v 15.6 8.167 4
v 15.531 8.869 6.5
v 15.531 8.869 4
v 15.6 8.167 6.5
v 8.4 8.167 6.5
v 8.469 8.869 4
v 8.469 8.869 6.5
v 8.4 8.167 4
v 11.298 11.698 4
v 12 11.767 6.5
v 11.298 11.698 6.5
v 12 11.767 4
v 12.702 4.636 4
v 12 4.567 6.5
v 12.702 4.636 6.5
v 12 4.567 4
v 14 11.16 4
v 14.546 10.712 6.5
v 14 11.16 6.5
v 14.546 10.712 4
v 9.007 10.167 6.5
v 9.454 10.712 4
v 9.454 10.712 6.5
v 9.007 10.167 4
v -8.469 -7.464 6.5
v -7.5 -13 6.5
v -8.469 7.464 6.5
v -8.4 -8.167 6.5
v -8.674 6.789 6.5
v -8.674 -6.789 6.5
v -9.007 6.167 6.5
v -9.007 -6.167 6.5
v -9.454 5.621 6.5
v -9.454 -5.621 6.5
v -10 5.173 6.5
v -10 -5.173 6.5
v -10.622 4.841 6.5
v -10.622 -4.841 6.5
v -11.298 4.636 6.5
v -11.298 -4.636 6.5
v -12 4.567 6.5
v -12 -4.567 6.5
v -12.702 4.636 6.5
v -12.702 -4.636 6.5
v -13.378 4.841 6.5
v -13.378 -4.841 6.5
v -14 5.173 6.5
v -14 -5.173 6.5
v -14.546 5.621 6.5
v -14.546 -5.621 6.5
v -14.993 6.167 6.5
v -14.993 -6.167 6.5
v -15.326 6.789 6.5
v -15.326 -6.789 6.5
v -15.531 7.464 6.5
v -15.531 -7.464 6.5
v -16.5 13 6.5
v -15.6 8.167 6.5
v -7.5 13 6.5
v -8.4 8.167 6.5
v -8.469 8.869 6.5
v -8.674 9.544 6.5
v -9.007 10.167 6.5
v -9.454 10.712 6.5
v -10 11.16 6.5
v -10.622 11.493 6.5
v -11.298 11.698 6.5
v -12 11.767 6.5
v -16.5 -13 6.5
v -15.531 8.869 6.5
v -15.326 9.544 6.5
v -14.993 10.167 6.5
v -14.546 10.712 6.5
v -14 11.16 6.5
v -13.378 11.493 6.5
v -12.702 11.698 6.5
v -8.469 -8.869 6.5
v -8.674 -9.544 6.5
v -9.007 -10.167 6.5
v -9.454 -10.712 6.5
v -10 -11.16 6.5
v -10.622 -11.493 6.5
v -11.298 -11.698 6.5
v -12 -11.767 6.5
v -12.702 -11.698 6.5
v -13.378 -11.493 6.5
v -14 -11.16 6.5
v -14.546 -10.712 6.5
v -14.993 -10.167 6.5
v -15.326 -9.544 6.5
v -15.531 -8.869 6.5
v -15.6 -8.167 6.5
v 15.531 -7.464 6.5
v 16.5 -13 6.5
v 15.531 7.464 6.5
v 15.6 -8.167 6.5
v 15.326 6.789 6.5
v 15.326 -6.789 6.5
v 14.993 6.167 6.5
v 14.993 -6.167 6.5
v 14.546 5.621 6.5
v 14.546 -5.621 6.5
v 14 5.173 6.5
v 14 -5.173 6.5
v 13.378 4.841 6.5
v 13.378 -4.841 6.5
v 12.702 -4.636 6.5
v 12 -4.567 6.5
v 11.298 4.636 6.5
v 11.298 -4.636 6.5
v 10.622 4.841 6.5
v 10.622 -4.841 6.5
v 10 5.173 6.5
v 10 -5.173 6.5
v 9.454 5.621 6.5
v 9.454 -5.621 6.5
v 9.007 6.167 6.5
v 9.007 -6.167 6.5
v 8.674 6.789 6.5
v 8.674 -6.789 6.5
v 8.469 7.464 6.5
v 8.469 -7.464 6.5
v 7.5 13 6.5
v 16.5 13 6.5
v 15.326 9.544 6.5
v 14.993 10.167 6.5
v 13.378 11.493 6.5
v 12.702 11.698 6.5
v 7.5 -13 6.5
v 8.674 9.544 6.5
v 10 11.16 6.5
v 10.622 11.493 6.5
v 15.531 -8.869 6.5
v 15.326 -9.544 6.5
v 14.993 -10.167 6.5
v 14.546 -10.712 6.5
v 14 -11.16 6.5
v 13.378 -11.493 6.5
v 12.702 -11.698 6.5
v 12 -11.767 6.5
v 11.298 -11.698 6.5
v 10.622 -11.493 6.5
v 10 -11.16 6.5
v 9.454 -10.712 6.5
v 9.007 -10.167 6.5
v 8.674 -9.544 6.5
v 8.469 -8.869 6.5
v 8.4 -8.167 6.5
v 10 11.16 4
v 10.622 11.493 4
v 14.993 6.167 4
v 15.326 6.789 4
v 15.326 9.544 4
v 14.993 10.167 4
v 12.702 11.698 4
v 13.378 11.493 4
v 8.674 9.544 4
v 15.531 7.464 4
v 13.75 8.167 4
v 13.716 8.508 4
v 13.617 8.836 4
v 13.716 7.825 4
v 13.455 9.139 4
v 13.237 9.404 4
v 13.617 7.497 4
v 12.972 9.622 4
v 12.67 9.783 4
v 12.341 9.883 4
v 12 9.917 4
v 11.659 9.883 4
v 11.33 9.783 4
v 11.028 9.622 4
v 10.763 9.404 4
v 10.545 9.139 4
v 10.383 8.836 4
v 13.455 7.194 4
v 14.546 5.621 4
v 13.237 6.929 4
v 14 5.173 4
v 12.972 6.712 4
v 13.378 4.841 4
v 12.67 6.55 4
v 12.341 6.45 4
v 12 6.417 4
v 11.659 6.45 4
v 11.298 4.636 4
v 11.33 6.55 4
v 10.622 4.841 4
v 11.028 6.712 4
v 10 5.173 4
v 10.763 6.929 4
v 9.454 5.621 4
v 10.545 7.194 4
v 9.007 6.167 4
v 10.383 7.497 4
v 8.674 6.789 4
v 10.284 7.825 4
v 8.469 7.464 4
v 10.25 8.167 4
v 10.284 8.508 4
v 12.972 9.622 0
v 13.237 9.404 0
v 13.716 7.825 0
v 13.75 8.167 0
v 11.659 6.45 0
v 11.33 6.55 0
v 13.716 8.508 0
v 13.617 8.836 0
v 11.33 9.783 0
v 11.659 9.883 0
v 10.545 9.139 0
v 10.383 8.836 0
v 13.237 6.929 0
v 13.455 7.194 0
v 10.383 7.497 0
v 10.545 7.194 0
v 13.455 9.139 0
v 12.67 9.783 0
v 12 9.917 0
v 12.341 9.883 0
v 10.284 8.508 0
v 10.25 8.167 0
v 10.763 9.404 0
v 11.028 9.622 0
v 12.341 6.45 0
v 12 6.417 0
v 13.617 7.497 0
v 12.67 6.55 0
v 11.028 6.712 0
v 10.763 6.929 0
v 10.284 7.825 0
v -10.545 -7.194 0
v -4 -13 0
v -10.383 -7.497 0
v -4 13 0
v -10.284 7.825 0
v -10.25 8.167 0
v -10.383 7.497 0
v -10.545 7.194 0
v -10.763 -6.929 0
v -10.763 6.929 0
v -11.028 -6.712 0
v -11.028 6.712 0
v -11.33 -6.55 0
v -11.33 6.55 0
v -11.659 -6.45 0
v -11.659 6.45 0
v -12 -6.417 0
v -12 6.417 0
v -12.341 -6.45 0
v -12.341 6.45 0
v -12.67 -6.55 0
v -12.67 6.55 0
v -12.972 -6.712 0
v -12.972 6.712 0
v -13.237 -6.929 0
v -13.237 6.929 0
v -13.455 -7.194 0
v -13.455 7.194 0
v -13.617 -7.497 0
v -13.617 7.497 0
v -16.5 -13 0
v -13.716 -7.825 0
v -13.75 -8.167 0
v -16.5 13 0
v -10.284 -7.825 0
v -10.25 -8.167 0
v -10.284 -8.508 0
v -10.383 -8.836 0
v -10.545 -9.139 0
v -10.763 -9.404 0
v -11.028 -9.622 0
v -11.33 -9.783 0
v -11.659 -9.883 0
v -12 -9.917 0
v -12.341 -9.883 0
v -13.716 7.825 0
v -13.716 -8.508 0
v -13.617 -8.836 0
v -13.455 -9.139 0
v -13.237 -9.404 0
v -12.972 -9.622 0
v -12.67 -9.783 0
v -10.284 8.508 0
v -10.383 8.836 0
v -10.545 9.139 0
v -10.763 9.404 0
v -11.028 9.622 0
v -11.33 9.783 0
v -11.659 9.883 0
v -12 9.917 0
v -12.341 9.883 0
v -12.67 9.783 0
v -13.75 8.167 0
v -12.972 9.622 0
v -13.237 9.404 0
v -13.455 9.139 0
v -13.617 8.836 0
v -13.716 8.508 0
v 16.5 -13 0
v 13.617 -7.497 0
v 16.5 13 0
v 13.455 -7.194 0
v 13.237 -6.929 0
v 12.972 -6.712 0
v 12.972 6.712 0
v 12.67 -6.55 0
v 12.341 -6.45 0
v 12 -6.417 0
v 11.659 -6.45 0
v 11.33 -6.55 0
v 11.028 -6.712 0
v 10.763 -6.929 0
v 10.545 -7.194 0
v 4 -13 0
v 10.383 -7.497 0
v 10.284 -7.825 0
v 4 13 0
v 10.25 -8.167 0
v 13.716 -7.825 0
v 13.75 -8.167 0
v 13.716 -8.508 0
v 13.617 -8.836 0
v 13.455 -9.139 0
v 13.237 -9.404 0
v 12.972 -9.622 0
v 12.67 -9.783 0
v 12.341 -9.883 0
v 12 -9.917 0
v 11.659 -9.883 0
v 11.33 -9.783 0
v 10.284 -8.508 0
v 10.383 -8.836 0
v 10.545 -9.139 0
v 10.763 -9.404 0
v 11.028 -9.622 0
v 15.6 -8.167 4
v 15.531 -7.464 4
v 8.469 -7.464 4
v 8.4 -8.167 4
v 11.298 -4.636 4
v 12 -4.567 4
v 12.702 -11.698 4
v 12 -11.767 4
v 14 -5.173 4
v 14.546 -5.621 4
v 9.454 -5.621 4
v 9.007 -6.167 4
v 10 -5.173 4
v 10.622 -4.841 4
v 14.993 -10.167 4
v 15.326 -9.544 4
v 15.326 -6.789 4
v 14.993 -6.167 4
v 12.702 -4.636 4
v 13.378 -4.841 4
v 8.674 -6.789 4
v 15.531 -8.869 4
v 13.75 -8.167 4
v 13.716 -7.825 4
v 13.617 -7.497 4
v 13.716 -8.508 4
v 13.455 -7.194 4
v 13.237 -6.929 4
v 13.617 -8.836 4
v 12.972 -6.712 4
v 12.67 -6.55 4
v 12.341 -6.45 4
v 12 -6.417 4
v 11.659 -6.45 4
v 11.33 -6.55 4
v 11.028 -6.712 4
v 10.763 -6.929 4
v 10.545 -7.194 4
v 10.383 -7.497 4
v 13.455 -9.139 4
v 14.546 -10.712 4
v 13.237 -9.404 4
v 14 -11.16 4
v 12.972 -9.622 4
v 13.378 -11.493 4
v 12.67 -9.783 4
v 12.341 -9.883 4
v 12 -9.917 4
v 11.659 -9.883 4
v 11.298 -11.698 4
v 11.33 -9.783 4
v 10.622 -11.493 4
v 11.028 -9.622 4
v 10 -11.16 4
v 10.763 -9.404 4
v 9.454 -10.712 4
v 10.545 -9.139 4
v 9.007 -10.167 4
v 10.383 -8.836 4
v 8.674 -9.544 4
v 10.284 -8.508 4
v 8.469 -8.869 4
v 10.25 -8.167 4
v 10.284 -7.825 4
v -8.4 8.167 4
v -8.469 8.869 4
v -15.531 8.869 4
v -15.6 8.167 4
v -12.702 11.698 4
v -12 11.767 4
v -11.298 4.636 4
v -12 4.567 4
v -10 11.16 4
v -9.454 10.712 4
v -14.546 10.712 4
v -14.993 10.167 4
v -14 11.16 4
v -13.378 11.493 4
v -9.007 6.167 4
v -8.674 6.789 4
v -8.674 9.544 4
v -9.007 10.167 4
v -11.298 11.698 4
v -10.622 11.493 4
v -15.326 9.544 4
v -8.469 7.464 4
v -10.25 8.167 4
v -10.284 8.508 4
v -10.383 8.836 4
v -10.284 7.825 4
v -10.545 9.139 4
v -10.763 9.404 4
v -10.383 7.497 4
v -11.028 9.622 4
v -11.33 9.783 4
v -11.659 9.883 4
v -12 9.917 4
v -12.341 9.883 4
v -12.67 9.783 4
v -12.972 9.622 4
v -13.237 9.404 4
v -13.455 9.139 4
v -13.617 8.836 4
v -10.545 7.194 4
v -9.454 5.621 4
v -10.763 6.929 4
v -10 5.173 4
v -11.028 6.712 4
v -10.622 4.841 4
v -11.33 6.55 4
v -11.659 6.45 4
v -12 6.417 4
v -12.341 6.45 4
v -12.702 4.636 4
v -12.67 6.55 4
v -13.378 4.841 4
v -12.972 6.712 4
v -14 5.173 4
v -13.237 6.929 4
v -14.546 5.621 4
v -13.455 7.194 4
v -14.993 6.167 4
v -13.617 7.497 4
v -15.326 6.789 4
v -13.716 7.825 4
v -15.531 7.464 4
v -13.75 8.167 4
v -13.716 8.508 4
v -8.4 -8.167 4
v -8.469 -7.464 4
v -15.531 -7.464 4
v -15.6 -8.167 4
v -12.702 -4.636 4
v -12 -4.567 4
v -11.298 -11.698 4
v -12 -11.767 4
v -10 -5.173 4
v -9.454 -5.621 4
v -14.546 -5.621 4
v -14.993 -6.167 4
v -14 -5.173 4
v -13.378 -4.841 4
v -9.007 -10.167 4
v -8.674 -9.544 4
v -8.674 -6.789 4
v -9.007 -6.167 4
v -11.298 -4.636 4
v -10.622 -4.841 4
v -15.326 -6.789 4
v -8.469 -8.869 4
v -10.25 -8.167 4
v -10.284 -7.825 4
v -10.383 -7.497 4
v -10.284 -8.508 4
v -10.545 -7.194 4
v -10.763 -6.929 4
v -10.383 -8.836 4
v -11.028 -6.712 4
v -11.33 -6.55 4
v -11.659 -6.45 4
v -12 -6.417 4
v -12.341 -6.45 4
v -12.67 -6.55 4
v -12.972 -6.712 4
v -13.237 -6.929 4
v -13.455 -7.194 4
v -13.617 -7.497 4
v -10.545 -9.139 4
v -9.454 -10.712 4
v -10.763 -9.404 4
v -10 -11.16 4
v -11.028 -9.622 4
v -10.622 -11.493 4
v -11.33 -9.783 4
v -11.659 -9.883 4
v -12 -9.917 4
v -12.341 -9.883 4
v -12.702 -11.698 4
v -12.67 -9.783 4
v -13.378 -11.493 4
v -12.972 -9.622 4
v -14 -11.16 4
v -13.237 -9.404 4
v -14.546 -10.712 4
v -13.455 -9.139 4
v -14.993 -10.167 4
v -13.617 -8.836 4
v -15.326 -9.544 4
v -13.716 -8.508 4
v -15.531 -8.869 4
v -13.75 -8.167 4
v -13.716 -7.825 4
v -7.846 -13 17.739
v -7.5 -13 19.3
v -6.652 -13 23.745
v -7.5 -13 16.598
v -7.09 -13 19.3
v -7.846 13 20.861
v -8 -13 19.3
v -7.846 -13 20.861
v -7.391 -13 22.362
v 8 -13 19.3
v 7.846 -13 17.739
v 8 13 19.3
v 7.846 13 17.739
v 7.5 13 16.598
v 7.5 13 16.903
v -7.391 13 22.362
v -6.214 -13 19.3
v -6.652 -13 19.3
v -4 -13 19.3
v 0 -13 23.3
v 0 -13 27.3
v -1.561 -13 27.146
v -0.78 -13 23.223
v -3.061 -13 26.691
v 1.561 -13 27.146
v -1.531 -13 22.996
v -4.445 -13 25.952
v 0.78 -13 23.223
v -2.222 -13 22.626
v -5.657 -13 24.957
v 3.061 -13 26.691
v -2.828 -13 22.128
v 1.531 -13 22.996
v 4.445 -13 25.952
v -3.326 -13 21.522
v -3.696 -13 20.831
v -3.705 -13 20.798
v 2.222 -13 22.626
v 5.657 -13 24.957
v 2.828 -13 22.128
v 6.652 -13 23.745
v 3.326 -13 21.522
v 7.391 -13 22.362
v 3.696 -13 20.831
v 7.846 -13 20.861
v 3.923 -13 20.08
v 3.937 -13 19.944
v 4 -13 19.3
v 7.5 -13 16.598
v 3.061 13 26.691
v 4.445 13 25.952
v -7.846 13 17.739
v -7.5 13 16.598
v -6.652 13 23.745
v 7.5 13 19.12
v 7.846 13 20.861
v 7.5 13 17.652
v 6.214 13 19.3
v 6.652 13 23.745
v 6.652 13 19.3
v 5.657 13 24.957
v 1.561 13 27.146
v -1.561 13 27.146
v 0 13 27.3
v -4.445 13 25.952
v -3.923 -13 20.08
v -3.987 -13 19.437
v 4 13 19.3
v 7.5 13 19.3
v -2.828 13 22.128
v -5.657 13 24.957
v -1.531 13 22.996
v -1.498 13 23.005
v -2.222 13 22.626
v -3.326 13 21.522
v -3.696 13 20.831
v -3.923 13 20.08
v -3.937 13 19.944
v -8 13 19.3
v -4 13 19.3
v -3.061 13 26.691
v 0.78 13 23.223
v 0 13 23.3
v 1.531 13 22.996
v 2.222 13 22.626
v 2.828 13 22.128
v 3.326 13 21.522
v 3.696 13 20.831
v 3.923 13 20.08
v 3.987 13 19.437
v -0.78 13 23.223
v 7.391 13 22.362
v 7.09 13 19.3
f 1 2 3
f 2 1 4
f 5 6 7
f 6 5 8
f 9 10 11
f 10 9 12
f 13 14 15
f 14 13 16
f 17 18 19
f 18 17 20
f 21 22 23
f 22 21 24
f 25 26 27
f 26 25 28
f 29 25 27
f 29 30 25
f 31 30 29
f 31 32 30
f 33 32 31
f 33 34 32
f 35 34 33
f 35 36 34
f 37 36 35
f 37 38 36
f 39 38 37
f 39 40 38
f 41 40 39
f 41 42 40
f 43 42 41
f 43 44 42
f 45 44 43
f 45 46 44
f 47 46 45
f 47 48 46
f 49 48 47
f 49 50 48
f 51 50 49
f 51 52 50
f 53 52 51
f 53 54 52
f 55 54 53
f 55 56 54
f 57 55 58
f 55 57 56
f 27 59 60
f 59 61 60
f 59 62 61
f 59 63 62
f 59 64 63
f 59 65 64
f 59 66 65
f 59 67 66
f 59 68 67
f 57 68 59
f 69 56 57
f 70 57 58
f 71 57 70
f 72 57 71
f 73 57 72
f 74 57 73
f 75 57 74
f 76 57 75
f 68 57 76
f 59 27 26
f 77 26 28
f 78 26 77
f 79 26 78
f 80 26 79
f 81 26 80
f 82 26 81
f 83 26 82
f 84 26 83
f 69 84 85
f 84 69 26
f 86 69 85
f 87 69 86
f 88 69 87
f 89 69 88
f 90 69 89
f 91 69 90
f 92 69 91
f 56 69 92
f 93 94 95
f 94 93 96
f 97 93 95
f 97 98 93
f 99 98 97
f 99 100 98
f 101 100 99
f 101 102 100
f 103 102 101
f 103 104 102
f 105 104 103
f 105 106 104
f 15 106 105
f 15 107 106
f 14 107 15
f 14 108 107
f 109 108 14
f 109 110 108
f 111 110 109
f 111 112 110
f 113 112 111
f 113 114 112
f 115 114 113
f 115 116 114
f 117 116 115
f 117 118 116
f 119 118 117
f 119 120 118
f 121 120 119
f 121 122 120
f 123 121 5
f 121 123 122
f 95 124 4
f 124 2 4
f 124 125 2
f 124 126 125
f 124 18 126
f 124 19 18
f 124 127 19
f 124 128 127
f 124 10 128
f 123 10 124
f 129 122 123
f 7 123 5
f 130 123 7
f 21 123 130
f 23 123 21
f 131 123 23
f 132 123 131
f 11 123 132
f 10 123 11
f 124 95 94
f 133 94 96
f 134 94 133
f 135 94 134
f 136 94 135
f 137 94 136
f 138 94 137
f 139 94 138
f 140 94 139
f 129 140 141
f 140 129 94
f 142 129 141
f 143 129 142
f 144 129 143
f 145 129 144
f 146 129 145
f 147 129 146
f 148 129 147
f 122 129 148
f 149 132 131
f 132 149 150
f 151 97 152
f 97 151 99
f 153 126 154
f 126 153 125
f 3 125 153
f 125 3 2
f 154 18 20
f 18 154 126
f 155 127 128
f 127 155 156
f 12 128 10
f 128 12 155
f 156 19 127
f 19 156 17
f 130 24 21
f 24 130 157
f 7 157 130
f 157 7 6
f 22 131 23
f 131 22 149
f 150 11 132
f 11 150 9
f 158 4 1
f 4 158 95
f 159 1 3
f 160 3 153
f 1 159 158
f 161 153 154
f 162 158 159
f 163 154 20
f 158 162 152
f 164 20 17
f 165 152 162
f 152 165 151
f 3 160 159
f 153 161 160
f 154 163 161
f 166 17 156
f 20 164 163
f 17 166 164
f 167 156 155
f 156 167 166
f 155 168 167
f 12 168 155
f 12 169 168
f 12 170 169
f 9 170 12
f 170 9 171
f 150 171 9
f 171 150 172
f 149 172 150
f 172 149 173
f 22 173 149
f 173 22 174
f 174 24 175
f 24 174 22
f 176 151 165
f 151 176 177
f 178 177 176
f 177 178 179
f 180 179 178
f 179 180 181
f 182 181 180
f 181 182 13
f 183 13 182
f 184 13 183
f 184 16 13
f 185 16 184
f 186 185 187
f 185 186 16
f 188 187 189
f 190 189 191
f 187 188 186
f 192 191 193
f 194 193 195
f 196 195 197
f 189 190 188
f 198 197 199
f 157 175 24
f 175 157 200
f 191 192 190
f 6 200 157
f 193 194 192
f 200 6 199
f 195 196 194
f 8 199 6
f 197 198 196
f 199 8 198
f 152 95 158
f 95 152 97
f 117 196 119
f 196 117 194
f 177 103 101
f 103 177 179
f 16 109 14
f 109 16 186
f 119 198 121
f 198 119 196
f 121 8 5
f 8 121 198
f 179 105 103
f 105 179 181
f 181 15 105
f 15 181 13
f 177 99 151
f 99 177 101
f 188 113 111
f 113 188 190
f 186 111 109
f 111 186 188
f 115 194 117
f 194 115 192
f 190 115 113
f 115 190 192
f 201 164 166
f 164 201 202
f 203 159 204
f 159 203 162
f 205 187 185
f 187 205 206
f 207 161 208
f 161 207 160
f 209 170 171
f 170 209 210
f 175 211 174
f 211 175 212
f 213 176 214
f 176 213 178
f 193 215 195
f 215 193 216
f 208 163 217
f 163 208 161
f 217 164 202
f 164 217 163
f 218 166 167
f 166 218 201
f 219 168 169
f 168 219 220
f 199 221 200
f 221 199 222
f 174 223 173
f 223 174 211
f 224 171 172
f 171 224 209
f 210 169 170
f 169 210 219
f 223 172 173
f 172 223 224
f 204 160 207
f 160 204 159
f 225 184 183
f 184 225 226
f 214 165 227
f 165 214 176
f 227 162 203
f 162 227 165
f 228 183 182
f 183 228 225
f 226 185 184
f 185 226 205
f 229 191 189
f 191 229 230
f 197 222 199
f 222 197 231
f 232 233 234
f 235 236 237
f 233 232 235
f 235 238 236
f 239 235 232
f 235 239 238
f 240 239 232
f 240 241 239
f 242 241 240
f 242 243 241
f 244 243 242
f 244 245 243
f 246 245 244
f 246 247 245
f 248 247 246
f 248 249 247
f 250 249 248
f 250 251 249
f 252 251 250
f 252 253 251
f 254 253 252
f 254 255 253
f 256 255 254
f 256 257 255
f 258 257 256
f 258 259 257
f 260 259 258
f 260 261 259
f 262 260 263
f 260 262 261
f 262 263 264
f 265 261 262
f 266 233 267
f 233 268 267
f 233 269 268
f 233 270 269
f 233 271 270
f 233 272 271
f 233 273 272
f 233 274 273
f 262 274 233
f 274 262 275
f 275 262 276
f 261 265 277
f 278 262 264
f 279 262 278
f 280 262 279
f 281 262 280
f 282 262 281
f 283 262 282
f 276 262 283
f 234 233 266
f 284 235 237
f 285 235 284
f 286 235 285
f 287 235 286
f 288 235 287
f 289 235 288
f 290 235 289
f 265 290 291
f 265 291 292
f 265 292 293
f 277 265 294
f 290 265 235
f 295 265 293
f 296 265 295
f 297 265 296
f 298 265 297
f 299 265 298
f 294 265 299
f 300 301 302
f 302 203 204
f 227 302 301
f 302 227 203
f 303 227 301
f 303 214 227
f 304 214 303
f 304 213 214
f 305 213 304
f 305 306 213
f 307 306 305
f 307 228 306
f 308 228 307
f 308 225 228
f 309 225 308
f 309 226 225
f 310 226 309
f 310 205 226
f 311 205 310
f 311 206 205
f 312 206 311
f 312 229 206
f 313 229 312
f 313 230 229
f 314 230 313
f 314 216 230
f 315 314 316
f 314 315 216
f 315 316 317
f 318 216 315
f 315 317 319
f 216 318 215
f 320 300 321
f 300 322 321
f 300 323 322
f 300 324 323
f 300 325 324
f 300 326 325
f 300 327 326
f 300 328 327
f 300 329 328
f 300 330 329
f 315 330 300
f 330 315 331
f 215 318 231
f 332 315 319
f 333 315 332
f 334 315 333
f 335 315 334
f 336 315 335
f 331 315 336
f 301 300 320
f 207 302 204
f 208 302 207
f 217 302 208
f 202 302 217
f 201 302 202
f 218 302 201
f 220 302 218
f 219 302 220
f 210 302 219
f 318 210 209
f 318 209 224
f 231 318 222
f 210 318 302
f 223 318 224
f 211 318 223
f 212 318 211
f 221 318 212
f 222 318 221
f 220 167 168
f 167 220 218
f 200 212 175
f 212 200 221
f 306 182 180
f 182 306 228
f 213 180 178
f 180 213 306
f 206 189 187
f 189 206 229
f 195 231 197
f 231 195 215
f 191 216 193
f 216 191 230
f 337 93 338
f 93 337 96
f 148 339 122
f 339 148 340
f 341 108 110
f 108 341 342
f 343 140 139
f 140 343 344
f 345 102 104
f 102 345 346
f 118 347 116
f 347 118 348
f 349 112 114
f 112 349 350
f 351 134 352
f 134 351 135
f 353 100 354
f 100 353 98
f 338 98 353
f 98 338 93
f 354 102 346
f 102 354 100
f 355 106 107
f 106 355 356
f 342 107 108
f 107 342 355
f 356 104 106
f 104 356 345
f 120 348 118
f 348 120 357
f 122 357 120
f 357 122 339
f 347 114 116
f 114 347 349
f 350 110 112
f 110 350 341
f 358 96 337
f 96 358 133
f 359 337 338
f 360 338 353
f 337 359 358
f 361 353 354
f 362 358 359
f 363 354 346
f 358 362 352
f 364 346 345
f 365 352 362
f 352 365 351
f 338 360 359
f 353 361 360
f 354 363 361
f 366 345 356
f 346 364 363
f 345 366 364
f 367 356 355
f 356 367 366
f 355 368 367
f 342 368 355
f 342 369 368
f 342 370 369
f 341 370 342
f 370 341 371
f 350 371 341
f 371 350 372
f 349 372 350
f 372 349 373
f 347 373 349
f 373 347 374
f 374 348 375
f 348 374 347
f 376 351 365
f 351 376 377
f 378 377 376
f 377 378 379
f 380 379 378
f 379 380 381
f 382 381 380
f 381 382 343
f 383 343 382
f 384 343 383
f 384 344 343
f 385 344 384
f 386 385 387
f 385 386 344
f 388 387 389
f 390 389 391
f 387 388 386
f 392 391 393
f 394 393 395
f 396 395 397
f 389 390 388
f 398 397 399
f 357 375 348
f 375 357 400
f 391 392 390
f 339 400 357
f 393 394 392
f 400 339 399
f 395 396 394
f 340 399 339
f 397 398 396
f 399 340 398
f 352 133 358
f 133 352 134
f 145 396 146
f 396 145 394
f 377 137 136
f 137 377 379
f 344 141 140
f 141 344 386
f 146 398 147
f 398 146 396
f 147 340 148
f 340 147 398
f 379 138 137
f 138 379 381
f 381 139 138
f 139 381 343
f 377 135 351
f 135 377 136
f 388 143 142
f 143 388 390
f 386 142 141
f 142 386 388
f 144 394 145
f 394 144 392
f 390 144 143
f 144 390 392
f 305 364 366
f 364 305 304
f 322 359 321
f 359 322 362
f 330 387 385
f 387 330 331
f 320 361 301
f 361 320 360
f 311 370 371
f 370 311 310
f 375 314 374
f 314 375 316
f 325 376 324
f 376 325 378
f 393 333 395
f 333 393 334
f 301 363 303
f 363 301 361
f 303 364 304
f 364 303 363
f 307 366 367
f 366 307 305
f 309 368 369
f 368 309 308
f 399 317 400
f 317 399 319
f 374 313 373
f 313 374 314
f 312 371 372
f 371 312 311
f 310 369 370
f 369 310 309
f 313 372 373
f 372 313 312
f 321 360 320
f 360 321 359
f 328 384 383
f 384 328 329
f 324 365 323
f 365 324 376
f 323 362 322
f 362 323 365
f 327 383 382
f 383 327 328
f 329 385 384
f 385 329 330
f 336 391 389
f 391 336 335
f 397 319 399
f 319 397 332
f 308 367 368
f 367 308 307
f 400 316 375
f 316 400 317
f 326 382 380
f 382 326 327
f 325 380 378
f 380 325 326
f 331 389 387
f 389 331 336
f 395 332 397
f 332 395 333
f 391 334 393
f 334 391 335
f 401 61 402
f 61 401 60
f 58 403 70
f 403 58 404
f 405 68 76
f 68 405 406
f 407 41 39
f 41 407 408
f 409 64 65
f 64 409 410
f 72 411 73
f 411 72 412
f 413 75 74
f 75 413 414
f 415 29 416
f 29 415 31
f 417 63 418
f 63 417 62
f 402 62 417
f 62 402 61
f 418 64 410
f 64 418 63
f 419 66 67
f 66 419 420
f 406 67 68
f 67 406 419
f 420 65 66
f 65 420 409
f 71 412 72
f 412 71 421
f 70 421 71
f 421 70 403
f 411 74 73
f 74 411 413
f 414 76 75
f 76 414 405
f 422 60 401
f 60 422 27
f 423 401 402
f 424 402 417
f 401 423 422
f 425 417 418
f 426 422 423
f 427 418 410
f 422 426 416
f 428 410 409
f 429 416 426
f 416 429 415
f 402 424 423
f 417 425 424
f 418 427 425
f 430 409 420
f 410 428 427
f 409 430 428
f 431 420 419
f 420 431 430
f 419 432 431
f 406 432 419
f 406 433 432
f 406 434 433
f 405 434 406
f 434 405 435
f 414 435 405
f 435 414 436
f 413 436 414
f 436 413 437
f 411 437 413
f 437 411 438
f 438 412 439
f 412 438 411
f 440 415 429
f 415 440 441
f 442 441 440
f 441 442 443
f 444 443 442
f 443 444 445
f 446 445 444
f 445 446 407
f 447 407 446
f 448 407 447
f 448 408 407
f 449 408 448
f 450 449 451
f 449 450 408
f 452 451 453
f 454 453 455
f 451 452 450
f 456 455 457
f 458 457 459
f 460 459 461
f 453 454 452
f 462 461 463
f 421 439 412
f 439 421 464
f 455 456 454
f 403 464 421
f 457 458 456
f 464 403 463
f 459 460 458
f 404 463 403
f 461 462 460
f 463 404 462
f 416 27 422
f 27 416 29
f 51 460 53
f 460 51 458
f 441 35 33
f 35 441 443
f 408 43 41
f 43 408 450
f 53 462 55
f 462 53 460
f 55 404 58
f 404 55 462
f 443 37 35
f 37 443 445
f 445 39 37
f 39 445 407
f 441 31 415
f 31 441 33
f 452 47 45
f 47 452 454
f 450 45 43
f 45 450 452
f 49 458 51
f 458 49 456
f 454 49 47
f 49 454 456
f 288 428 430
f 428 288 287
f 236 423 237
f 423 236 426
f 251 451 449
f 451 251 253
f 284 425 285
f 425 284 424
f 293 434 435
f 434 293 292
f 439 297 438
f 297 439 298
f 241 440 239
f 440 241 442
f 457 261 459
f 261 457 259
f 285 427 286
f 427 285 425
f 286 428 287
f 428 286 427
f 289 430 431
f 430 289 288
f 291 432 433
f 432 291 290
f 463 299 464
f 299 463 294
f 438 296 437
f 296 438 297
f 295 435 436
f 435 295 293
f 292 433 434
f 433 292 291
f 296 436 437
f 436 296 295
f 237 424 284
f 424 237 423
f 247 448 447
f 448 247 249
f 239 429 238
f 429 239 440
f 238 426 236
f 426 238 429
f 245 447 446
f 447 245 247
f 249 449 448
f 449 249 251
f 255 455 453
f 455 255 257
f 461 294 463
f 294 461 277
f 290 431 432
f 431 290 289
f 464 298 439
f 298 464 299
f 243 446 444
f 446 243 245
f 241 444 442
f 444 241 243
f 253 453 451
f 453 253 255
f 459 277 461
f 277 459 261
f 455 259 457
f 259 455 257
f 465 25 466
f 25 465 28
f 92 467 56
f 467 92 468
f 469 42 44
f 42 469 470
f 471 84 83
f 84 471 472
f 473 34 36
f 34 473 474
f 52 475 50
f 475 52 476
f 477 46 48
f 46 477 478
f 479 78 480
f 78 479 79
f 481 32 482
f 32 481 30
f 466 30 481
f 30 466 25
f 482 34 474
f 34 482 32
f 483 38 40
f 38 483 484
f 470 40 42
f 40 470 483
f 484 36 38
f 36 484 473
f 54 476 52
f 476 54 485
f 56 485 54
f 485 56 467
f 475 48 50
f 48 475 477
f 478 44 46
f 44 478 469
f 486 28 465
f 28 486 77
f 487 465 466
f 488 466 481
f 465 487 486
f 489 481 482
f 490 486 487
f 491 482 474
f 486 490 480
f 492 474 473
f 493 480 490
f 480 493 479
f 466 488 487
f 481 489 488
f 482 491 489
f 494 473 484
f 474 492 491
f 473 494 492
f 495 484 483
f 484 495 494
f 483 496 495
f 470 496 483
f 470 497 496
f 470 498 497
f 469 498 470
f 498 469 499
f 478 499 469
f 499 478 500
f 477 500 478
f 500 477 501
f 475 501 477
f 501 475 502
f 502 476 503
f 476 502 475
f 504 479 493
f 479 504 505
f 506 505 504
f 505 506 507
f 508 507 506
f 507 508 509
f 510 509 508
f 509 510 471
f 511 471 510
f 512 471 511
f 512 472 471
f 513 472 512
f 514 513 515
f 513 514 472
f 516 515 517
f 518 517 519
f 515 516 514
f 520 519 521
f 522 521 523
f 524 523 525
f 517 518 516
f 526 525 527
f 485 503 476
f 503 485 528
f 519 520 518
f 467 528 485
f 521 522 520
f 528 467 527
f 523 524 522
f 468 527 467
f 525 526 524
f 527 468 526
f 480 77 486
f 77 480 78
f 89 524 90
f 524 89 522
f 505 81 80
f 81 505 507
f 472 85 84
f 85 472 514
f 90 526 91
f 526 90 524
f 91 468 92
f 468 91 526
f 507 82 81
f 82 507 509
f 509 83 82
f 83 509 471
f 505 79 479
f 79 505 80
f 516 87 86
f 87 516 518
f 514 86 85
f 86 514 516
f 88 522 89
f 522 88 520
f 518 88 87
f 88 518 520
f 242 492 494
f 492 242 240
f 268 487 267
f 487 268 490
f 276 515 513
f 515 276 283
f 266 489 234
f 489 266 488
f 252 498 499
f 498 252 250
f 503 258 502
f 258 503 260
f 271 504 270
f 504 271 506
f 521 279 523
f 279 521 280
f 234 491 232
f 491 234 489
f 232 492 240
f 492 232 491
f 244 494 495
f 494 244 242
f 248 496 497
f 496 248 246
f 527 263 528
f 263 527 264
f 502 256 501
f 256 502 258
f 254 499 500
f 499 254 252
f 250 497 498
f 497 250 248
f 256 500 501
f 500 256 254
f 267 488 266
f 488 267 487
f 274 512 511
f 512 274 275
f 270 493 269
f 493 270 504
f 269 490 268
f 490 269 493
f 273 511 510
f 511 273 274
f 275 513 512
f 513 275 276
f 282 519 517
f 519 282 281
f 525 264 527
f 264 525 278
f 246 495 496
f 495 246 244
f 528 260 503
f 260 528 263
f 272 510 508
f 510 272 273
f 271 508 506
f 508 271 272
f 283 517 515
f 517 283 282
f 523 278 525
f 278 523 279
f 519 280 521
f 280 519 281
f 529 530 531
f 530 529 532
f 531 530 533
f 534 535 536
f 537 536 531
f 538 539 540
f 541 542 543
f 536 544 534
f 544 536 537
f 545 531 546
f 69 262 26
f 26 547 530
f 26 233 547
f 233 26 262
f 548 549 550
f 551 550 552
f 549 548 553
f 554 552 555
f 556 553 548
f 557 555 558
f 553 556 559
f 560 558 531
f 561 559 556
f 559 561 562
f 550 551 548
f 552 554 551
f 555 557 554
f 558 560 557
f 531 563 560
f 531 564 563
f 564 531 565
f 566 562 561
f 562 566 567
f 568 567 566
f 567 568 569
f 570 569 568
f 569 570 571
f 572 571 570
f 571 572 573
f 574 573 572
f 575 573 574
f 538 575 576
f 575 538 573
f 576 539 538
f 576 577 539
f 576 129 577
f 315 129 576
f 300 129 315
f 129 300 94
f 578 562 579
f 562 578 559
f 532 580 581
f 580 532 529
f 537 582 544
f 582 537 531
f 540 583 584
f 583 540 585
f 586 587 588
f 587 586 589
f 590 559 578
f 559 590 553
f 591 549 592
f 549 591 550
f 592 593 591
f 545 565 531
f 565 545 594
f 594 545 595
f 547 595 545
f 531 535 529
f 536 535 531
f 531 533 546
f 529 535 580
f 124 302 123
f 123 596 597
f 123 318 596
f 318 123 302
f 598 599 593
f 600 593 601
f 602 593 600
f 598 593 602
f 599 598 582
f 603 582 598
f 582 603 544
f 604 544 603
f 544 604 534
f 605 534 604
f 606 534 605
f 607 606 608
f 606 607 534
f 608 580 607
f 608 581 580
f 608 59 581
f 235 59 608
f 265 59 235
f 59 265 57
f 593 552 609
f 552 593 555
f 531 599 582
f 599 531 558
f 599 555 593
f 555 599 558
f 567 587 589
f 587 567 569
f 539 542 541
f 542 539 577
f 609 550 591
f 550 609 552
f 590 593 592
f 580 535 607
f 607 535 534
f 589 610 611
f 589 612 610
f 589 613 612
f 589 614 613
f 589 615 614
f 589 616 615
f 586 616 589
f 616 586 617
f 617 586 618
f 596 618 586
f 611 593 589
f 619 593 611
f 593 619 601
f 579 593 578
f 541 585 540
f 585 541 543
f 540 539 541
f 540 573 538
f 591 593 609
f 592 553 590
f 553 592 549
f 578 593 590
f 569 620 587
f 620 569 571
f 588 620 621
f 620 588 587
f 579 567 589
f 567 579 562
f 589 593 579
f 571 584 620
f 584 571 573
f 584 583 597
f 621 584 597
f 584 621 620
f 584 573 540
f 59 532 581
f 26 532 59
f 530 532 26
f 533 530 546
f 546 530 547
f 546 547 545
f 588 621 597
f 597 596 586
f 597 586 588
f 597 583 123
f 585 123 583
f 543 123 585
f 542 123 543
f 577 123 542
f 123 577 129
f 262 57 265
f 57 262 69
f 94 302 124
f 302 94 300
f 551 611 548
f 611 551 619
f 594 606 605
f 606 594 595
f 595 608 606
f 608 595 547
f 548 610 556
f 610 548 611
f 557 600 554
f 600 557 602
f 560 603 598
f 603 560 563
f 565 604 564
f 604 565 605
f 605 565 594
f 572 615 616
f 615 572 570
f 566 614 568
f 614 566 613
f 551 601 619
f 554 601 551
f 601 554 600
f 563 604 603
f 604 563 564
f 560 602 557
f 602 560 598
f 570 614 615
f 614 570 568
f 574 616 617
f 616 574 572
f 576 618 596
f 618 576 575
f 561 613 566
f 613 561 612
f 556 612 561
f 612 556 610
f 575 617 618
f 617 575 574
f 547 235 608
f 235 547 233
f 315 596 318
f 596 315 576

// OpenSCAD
//#translate([-16, -15 ,0]) import("/home/bhack/STL/Lock_Down_Clip.stl", convexity=3);

$fn = 32; // detail

$width = 26; // how long / wide the object is
$basewidth = 33; // how big the feet are

$height = 23.3;  // Woot! This is awesome.


module screwhole () {
    union() {
        //cylinder(r2 = 3.5, r1 = 1, h=2, center=true);
        translate([0, 0, 1.75]) #cylinder(d=7.2, h=2.5, center=true); // used to be 2, for a large top gap
        translate([0, 0, -3.5]) cylinder(d=3.5, h=7, center=false); // inner screw hole
    }
}


difference() {
    // Main Body
    union() {
        translate([0, 0, $height-4]) rotate([0, 90, 90]) cylinder(d=16, h=$width, center=true);
        translate([-7.5, -$width/2, 0]) cube([15, $width, $height-4], center=false) ;

        // Bottom Plate
        translate([-$basewidth/2, -$width/2, 0]) cube([$basewidth, $width, 6.5], center=false) ;
    }

    // Main body cutout 
    union() {
        translate([0, 0, $height-4]) rotate([0, 90, 90]) cylinder(d=8, h=40, center=true);
        #translate([-$width/6.5, -$width/1.5, 0]) cube([8, $width*2, $height-4], center=false) ;
        // Height Minus the center point of the Cylinder at the top
    }
    
    translate([12, $width/3-.5, 3.5]) screwhole();
    translate([12, -$width/3+.5, 3.5]) screwhole();
    
    translate([-12, $width/3-.5, 3.5]) screwhole();
    translate([-12, -$width/3+.5, 3.5]) screwhole();
}





    
